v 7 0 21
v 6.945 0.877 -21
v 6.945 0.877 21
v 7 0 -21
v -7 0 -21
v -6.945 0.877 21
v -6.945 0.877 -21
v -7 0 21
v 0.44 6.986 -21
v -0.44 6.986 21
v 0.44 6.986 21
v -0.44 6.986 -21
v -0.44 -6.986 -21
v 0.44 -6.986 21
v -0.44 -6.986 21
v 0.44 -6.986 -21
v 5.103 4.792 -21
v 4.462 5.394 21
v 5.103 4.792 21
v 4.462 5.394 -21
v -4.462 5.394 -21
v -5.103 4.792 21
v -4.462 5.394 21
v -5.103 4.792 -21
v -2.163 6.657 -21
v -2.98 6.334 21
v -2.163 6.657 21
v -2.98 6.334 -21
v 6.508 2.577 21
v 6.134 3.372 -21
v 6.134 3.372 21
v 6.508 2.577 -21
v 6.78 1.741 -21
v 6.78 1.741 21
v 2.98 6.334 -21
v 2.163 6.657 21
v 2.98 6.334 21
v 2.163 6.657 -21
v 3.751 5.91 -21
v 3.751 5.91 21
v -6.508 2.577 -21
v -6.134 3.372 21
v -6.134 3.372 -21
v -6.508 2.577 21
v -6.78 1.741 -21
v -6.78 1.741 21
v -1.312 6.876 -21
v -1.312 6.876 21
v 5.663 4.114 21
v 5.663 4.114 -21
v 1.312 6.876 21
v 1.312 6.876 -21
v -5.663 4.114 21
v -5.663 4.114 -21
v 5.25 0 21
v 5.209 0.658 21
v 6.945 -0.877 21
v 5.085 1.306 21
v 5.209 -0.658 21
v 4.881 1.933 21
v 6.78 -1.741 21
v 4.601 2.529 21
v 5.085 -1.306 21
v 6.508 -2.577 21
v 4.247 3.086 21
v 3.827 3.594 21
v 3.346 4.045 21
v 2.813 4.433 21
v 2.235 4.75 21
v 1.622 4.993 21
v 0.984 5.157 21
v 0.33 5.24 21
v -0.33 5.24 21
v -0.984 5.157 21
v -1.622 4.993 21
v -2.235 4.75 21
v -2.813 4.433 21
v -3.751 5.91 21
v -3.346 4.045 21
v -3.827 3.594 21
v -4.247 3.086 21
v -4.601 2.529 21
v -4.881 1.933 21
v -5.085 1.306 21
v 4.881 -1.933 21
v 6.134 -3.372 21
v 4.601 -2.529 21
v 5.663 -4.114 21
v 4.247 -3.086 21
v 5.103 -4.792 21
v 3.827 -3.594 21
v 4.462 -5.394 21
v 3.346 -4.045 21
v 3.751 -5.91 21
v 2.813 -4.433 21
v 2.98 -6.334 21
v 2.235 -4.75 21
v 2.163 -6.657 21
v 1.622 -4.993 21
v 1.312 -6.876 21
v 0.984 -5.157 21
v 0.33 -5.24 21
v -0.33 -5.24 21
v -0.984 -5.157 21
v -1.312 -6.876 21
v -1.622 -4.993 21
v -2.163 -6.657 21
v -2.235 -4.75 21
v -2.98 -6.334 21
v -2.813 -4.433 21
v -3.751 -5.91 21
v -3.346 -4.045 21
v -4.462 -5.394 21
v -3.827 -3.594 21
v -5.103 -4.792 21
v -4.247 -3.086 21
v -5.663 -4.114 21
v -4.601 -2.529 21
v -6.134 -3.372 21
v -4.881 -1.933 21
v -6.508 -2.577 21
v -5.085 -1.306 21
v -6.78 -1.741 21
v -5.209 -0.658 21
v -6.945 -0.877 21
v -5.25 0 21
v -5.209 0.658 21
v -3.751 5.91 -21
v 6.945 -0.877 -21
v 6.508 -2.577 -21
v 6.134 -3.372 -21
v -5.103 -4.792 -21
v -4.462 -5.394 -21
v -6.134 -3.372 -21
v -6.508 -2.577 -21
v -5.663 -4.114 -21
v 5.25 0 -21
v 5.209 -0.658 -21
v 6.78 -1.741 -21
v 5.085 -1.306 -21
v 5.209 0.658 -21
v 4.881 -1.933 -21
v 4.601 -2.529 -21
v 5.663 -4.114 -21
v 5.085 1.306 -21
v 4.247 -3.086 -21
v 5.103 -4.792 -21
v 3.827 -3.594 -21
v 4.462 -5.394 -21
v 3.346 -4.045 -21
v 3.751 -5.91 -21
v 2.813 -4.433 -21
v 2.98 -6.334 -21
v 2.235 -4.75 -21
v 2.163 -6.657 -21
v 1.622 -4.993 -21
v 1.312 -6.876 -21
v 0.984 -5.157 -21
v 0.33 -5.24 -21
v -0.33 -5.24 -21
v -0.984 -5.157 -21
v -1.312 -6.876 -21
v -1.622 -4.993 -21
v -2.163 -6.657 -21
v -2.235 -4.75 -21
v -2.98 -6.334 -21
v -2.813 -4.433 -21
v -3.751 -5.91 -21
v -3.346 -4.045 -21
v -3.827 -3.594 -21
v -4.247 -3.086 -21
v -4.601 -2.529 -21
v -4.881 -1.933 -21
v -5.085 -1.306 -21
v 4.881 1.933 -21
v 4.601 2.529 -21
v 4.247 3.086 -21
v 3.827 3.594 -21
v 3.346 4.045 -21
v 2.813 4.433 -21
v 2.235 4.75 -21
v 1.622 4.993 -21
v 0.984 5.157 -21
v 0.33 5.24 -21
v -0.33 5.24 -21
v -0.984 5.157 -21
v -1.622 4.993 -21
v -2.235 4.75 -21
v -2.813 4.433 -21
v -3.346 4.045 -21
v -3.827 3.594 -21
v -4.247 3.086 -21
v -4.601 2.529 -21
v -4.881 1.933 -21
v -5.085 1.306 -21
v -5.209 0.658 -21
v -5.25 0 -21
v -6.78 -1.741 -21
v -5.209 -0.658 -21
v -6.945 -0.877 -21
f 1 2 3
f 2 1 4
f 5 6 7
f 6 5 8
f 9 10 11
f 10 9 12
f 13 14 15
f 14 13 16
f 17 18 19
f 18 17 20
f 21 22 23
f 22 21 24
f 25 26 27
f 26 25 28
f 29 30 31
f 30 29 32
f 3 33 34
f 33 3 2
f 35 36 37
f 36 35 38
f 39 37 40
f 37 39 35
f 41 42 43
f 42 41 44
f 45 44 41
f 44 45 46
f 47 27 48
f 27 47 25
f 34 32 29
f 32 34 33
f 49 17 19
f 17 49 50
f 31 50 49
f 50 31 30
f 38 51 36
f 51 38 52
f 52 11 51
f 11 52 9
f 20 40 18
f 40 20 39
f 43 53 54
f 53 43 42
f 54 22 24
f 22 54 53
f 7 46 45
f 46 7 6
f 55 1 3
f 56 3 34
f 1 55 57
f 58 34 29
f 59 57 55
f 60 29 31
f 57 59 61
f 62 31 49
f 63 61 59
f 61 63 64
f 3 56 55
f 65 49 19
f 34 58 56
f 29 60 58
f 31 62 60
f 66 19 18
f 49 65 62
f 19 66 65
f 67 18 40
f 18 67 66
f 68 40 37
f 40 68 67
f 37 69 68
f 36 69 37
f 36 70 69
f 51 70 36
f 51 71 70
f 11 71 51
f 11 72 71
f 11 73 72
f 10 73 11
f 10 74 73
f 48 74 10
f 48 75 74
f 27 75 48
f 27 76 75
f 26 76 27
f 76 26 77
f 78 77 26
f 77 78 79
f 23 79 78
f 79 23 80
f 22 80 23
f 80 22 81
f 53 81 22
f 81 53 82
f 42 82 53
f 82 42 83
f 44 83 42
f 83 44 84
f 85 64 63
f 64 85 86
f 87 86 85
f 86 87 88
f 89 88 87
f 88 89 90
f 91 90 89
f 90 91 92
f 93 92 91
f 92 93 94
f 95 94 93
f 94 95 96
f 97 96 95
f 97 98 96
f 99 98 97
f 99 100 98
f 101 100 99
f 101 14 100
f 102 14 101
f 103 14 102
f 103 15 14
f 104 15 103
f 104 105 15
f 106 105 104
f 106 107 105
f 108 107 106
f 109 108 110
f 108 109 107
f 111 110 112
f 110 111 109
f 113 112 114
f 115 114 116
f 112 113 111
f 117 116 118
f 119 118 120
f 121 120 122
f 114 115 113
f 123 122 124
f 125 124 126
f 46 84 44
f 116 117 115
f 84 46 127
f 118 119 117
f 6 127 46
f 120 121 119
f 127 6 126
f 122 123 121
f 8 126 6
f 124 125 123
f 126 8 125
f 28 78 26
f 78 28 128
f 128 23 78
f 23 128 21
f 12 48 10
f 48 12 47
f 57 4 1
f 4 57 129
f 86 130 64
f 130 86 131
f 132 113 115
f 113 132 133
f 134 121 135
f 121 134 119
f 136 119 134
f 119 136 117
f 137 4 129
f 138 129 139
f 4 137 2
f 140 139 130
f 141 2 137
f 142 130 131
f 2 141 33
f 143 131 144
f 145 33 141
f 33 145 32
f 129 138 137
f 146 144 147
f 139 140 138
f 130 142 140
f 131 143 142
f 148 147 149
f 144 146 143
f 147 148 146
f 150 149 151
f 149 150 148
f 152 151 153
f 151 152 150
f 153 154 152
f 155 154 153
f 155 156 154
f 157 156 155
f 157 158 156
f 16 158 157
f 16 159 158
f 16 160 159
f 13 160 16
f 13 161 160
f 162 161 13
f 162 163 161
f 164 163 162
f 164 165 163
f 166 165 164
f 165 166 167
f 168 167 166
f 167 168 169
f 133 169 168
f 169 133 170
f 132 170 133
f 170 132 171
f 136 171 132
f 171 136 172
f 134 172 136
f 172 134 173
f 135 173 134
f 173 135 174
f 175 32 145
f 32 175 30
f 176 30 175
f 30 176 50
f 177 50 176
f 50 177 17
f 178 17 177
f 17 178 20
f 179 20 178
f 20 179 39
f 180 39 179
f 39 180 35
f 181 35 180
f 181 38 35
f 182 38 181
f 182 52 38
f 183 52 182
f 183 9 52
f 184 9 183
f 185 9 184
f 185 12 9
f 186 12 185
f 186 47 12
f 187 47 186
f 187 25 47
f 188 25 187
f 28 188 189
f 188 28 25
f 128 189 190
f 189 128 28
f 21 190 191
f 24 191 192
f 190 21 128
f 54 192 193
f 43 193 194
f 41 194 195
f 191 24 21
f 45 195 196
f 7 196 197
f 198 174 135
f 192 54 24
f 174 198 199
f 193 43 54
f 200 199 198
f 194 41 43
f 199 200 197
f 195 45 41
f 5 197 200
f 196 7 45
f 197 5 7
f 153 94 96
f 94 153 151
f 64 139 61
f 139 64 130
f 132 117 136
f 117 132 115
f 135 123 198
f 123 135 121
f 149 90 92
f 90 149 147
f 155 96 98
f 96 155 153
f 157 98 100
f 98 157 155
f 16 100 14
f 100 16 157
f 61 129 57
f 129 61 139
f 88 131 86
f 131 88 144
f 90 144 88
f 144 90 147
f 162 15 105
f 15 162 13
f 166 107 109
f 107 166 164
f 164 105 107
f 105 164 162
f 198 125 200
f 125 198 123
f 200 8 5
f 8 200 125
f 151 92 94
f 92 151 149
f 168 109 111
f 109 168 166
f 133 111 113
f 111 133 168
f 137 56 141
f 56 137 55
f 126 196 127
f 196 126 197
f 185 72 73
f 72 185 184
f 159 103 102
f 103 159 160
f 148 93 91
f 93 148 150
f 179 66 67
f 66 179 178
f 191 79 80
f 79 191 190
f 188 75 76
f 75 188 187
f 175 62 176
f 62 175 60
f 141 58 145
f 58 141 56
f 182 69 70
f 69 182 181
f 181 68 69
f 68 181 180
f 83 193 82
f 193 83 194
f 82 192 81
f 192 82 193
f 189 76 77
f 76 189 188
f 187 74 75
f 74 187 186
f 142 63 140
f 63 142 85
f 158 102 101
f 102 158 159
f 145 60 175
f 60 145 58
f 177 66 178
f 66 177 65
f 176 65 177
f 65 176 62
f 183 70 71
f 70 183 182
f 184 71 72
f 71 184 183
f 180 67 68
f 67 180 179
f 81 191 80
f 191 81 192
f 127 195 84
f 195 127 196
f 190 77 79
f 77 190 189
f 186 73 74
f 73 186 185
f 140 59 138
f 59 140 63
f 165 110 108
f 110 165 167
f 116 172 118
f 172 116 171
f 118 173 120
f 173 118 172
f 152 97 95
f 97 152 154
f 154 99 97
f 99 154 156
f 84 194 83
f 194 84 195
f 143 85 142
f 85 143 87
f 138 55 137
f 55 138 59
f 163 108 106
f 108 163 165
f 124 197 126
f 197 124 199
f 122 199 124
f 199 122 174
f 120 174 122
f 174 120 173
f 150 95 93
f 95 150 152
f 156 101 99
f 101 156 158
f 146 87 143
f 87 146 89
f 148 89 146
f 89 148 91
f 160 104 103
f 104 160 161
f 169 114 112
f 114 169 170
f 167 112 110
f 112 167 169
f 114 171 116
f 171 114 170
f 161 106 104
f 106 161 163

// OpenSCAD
$fn = 50;


difference() {
	union() {
		translate(v = [0, 0, -21.0000000000]) {
			cylinder(h = 42, r = 7.0000000000);
		}
	}
	union() {
		translate(v = [0, 0, -100.0000000000]) {
			cylinder(h = 200, r = 5.2500000000);
		}
	}
}
